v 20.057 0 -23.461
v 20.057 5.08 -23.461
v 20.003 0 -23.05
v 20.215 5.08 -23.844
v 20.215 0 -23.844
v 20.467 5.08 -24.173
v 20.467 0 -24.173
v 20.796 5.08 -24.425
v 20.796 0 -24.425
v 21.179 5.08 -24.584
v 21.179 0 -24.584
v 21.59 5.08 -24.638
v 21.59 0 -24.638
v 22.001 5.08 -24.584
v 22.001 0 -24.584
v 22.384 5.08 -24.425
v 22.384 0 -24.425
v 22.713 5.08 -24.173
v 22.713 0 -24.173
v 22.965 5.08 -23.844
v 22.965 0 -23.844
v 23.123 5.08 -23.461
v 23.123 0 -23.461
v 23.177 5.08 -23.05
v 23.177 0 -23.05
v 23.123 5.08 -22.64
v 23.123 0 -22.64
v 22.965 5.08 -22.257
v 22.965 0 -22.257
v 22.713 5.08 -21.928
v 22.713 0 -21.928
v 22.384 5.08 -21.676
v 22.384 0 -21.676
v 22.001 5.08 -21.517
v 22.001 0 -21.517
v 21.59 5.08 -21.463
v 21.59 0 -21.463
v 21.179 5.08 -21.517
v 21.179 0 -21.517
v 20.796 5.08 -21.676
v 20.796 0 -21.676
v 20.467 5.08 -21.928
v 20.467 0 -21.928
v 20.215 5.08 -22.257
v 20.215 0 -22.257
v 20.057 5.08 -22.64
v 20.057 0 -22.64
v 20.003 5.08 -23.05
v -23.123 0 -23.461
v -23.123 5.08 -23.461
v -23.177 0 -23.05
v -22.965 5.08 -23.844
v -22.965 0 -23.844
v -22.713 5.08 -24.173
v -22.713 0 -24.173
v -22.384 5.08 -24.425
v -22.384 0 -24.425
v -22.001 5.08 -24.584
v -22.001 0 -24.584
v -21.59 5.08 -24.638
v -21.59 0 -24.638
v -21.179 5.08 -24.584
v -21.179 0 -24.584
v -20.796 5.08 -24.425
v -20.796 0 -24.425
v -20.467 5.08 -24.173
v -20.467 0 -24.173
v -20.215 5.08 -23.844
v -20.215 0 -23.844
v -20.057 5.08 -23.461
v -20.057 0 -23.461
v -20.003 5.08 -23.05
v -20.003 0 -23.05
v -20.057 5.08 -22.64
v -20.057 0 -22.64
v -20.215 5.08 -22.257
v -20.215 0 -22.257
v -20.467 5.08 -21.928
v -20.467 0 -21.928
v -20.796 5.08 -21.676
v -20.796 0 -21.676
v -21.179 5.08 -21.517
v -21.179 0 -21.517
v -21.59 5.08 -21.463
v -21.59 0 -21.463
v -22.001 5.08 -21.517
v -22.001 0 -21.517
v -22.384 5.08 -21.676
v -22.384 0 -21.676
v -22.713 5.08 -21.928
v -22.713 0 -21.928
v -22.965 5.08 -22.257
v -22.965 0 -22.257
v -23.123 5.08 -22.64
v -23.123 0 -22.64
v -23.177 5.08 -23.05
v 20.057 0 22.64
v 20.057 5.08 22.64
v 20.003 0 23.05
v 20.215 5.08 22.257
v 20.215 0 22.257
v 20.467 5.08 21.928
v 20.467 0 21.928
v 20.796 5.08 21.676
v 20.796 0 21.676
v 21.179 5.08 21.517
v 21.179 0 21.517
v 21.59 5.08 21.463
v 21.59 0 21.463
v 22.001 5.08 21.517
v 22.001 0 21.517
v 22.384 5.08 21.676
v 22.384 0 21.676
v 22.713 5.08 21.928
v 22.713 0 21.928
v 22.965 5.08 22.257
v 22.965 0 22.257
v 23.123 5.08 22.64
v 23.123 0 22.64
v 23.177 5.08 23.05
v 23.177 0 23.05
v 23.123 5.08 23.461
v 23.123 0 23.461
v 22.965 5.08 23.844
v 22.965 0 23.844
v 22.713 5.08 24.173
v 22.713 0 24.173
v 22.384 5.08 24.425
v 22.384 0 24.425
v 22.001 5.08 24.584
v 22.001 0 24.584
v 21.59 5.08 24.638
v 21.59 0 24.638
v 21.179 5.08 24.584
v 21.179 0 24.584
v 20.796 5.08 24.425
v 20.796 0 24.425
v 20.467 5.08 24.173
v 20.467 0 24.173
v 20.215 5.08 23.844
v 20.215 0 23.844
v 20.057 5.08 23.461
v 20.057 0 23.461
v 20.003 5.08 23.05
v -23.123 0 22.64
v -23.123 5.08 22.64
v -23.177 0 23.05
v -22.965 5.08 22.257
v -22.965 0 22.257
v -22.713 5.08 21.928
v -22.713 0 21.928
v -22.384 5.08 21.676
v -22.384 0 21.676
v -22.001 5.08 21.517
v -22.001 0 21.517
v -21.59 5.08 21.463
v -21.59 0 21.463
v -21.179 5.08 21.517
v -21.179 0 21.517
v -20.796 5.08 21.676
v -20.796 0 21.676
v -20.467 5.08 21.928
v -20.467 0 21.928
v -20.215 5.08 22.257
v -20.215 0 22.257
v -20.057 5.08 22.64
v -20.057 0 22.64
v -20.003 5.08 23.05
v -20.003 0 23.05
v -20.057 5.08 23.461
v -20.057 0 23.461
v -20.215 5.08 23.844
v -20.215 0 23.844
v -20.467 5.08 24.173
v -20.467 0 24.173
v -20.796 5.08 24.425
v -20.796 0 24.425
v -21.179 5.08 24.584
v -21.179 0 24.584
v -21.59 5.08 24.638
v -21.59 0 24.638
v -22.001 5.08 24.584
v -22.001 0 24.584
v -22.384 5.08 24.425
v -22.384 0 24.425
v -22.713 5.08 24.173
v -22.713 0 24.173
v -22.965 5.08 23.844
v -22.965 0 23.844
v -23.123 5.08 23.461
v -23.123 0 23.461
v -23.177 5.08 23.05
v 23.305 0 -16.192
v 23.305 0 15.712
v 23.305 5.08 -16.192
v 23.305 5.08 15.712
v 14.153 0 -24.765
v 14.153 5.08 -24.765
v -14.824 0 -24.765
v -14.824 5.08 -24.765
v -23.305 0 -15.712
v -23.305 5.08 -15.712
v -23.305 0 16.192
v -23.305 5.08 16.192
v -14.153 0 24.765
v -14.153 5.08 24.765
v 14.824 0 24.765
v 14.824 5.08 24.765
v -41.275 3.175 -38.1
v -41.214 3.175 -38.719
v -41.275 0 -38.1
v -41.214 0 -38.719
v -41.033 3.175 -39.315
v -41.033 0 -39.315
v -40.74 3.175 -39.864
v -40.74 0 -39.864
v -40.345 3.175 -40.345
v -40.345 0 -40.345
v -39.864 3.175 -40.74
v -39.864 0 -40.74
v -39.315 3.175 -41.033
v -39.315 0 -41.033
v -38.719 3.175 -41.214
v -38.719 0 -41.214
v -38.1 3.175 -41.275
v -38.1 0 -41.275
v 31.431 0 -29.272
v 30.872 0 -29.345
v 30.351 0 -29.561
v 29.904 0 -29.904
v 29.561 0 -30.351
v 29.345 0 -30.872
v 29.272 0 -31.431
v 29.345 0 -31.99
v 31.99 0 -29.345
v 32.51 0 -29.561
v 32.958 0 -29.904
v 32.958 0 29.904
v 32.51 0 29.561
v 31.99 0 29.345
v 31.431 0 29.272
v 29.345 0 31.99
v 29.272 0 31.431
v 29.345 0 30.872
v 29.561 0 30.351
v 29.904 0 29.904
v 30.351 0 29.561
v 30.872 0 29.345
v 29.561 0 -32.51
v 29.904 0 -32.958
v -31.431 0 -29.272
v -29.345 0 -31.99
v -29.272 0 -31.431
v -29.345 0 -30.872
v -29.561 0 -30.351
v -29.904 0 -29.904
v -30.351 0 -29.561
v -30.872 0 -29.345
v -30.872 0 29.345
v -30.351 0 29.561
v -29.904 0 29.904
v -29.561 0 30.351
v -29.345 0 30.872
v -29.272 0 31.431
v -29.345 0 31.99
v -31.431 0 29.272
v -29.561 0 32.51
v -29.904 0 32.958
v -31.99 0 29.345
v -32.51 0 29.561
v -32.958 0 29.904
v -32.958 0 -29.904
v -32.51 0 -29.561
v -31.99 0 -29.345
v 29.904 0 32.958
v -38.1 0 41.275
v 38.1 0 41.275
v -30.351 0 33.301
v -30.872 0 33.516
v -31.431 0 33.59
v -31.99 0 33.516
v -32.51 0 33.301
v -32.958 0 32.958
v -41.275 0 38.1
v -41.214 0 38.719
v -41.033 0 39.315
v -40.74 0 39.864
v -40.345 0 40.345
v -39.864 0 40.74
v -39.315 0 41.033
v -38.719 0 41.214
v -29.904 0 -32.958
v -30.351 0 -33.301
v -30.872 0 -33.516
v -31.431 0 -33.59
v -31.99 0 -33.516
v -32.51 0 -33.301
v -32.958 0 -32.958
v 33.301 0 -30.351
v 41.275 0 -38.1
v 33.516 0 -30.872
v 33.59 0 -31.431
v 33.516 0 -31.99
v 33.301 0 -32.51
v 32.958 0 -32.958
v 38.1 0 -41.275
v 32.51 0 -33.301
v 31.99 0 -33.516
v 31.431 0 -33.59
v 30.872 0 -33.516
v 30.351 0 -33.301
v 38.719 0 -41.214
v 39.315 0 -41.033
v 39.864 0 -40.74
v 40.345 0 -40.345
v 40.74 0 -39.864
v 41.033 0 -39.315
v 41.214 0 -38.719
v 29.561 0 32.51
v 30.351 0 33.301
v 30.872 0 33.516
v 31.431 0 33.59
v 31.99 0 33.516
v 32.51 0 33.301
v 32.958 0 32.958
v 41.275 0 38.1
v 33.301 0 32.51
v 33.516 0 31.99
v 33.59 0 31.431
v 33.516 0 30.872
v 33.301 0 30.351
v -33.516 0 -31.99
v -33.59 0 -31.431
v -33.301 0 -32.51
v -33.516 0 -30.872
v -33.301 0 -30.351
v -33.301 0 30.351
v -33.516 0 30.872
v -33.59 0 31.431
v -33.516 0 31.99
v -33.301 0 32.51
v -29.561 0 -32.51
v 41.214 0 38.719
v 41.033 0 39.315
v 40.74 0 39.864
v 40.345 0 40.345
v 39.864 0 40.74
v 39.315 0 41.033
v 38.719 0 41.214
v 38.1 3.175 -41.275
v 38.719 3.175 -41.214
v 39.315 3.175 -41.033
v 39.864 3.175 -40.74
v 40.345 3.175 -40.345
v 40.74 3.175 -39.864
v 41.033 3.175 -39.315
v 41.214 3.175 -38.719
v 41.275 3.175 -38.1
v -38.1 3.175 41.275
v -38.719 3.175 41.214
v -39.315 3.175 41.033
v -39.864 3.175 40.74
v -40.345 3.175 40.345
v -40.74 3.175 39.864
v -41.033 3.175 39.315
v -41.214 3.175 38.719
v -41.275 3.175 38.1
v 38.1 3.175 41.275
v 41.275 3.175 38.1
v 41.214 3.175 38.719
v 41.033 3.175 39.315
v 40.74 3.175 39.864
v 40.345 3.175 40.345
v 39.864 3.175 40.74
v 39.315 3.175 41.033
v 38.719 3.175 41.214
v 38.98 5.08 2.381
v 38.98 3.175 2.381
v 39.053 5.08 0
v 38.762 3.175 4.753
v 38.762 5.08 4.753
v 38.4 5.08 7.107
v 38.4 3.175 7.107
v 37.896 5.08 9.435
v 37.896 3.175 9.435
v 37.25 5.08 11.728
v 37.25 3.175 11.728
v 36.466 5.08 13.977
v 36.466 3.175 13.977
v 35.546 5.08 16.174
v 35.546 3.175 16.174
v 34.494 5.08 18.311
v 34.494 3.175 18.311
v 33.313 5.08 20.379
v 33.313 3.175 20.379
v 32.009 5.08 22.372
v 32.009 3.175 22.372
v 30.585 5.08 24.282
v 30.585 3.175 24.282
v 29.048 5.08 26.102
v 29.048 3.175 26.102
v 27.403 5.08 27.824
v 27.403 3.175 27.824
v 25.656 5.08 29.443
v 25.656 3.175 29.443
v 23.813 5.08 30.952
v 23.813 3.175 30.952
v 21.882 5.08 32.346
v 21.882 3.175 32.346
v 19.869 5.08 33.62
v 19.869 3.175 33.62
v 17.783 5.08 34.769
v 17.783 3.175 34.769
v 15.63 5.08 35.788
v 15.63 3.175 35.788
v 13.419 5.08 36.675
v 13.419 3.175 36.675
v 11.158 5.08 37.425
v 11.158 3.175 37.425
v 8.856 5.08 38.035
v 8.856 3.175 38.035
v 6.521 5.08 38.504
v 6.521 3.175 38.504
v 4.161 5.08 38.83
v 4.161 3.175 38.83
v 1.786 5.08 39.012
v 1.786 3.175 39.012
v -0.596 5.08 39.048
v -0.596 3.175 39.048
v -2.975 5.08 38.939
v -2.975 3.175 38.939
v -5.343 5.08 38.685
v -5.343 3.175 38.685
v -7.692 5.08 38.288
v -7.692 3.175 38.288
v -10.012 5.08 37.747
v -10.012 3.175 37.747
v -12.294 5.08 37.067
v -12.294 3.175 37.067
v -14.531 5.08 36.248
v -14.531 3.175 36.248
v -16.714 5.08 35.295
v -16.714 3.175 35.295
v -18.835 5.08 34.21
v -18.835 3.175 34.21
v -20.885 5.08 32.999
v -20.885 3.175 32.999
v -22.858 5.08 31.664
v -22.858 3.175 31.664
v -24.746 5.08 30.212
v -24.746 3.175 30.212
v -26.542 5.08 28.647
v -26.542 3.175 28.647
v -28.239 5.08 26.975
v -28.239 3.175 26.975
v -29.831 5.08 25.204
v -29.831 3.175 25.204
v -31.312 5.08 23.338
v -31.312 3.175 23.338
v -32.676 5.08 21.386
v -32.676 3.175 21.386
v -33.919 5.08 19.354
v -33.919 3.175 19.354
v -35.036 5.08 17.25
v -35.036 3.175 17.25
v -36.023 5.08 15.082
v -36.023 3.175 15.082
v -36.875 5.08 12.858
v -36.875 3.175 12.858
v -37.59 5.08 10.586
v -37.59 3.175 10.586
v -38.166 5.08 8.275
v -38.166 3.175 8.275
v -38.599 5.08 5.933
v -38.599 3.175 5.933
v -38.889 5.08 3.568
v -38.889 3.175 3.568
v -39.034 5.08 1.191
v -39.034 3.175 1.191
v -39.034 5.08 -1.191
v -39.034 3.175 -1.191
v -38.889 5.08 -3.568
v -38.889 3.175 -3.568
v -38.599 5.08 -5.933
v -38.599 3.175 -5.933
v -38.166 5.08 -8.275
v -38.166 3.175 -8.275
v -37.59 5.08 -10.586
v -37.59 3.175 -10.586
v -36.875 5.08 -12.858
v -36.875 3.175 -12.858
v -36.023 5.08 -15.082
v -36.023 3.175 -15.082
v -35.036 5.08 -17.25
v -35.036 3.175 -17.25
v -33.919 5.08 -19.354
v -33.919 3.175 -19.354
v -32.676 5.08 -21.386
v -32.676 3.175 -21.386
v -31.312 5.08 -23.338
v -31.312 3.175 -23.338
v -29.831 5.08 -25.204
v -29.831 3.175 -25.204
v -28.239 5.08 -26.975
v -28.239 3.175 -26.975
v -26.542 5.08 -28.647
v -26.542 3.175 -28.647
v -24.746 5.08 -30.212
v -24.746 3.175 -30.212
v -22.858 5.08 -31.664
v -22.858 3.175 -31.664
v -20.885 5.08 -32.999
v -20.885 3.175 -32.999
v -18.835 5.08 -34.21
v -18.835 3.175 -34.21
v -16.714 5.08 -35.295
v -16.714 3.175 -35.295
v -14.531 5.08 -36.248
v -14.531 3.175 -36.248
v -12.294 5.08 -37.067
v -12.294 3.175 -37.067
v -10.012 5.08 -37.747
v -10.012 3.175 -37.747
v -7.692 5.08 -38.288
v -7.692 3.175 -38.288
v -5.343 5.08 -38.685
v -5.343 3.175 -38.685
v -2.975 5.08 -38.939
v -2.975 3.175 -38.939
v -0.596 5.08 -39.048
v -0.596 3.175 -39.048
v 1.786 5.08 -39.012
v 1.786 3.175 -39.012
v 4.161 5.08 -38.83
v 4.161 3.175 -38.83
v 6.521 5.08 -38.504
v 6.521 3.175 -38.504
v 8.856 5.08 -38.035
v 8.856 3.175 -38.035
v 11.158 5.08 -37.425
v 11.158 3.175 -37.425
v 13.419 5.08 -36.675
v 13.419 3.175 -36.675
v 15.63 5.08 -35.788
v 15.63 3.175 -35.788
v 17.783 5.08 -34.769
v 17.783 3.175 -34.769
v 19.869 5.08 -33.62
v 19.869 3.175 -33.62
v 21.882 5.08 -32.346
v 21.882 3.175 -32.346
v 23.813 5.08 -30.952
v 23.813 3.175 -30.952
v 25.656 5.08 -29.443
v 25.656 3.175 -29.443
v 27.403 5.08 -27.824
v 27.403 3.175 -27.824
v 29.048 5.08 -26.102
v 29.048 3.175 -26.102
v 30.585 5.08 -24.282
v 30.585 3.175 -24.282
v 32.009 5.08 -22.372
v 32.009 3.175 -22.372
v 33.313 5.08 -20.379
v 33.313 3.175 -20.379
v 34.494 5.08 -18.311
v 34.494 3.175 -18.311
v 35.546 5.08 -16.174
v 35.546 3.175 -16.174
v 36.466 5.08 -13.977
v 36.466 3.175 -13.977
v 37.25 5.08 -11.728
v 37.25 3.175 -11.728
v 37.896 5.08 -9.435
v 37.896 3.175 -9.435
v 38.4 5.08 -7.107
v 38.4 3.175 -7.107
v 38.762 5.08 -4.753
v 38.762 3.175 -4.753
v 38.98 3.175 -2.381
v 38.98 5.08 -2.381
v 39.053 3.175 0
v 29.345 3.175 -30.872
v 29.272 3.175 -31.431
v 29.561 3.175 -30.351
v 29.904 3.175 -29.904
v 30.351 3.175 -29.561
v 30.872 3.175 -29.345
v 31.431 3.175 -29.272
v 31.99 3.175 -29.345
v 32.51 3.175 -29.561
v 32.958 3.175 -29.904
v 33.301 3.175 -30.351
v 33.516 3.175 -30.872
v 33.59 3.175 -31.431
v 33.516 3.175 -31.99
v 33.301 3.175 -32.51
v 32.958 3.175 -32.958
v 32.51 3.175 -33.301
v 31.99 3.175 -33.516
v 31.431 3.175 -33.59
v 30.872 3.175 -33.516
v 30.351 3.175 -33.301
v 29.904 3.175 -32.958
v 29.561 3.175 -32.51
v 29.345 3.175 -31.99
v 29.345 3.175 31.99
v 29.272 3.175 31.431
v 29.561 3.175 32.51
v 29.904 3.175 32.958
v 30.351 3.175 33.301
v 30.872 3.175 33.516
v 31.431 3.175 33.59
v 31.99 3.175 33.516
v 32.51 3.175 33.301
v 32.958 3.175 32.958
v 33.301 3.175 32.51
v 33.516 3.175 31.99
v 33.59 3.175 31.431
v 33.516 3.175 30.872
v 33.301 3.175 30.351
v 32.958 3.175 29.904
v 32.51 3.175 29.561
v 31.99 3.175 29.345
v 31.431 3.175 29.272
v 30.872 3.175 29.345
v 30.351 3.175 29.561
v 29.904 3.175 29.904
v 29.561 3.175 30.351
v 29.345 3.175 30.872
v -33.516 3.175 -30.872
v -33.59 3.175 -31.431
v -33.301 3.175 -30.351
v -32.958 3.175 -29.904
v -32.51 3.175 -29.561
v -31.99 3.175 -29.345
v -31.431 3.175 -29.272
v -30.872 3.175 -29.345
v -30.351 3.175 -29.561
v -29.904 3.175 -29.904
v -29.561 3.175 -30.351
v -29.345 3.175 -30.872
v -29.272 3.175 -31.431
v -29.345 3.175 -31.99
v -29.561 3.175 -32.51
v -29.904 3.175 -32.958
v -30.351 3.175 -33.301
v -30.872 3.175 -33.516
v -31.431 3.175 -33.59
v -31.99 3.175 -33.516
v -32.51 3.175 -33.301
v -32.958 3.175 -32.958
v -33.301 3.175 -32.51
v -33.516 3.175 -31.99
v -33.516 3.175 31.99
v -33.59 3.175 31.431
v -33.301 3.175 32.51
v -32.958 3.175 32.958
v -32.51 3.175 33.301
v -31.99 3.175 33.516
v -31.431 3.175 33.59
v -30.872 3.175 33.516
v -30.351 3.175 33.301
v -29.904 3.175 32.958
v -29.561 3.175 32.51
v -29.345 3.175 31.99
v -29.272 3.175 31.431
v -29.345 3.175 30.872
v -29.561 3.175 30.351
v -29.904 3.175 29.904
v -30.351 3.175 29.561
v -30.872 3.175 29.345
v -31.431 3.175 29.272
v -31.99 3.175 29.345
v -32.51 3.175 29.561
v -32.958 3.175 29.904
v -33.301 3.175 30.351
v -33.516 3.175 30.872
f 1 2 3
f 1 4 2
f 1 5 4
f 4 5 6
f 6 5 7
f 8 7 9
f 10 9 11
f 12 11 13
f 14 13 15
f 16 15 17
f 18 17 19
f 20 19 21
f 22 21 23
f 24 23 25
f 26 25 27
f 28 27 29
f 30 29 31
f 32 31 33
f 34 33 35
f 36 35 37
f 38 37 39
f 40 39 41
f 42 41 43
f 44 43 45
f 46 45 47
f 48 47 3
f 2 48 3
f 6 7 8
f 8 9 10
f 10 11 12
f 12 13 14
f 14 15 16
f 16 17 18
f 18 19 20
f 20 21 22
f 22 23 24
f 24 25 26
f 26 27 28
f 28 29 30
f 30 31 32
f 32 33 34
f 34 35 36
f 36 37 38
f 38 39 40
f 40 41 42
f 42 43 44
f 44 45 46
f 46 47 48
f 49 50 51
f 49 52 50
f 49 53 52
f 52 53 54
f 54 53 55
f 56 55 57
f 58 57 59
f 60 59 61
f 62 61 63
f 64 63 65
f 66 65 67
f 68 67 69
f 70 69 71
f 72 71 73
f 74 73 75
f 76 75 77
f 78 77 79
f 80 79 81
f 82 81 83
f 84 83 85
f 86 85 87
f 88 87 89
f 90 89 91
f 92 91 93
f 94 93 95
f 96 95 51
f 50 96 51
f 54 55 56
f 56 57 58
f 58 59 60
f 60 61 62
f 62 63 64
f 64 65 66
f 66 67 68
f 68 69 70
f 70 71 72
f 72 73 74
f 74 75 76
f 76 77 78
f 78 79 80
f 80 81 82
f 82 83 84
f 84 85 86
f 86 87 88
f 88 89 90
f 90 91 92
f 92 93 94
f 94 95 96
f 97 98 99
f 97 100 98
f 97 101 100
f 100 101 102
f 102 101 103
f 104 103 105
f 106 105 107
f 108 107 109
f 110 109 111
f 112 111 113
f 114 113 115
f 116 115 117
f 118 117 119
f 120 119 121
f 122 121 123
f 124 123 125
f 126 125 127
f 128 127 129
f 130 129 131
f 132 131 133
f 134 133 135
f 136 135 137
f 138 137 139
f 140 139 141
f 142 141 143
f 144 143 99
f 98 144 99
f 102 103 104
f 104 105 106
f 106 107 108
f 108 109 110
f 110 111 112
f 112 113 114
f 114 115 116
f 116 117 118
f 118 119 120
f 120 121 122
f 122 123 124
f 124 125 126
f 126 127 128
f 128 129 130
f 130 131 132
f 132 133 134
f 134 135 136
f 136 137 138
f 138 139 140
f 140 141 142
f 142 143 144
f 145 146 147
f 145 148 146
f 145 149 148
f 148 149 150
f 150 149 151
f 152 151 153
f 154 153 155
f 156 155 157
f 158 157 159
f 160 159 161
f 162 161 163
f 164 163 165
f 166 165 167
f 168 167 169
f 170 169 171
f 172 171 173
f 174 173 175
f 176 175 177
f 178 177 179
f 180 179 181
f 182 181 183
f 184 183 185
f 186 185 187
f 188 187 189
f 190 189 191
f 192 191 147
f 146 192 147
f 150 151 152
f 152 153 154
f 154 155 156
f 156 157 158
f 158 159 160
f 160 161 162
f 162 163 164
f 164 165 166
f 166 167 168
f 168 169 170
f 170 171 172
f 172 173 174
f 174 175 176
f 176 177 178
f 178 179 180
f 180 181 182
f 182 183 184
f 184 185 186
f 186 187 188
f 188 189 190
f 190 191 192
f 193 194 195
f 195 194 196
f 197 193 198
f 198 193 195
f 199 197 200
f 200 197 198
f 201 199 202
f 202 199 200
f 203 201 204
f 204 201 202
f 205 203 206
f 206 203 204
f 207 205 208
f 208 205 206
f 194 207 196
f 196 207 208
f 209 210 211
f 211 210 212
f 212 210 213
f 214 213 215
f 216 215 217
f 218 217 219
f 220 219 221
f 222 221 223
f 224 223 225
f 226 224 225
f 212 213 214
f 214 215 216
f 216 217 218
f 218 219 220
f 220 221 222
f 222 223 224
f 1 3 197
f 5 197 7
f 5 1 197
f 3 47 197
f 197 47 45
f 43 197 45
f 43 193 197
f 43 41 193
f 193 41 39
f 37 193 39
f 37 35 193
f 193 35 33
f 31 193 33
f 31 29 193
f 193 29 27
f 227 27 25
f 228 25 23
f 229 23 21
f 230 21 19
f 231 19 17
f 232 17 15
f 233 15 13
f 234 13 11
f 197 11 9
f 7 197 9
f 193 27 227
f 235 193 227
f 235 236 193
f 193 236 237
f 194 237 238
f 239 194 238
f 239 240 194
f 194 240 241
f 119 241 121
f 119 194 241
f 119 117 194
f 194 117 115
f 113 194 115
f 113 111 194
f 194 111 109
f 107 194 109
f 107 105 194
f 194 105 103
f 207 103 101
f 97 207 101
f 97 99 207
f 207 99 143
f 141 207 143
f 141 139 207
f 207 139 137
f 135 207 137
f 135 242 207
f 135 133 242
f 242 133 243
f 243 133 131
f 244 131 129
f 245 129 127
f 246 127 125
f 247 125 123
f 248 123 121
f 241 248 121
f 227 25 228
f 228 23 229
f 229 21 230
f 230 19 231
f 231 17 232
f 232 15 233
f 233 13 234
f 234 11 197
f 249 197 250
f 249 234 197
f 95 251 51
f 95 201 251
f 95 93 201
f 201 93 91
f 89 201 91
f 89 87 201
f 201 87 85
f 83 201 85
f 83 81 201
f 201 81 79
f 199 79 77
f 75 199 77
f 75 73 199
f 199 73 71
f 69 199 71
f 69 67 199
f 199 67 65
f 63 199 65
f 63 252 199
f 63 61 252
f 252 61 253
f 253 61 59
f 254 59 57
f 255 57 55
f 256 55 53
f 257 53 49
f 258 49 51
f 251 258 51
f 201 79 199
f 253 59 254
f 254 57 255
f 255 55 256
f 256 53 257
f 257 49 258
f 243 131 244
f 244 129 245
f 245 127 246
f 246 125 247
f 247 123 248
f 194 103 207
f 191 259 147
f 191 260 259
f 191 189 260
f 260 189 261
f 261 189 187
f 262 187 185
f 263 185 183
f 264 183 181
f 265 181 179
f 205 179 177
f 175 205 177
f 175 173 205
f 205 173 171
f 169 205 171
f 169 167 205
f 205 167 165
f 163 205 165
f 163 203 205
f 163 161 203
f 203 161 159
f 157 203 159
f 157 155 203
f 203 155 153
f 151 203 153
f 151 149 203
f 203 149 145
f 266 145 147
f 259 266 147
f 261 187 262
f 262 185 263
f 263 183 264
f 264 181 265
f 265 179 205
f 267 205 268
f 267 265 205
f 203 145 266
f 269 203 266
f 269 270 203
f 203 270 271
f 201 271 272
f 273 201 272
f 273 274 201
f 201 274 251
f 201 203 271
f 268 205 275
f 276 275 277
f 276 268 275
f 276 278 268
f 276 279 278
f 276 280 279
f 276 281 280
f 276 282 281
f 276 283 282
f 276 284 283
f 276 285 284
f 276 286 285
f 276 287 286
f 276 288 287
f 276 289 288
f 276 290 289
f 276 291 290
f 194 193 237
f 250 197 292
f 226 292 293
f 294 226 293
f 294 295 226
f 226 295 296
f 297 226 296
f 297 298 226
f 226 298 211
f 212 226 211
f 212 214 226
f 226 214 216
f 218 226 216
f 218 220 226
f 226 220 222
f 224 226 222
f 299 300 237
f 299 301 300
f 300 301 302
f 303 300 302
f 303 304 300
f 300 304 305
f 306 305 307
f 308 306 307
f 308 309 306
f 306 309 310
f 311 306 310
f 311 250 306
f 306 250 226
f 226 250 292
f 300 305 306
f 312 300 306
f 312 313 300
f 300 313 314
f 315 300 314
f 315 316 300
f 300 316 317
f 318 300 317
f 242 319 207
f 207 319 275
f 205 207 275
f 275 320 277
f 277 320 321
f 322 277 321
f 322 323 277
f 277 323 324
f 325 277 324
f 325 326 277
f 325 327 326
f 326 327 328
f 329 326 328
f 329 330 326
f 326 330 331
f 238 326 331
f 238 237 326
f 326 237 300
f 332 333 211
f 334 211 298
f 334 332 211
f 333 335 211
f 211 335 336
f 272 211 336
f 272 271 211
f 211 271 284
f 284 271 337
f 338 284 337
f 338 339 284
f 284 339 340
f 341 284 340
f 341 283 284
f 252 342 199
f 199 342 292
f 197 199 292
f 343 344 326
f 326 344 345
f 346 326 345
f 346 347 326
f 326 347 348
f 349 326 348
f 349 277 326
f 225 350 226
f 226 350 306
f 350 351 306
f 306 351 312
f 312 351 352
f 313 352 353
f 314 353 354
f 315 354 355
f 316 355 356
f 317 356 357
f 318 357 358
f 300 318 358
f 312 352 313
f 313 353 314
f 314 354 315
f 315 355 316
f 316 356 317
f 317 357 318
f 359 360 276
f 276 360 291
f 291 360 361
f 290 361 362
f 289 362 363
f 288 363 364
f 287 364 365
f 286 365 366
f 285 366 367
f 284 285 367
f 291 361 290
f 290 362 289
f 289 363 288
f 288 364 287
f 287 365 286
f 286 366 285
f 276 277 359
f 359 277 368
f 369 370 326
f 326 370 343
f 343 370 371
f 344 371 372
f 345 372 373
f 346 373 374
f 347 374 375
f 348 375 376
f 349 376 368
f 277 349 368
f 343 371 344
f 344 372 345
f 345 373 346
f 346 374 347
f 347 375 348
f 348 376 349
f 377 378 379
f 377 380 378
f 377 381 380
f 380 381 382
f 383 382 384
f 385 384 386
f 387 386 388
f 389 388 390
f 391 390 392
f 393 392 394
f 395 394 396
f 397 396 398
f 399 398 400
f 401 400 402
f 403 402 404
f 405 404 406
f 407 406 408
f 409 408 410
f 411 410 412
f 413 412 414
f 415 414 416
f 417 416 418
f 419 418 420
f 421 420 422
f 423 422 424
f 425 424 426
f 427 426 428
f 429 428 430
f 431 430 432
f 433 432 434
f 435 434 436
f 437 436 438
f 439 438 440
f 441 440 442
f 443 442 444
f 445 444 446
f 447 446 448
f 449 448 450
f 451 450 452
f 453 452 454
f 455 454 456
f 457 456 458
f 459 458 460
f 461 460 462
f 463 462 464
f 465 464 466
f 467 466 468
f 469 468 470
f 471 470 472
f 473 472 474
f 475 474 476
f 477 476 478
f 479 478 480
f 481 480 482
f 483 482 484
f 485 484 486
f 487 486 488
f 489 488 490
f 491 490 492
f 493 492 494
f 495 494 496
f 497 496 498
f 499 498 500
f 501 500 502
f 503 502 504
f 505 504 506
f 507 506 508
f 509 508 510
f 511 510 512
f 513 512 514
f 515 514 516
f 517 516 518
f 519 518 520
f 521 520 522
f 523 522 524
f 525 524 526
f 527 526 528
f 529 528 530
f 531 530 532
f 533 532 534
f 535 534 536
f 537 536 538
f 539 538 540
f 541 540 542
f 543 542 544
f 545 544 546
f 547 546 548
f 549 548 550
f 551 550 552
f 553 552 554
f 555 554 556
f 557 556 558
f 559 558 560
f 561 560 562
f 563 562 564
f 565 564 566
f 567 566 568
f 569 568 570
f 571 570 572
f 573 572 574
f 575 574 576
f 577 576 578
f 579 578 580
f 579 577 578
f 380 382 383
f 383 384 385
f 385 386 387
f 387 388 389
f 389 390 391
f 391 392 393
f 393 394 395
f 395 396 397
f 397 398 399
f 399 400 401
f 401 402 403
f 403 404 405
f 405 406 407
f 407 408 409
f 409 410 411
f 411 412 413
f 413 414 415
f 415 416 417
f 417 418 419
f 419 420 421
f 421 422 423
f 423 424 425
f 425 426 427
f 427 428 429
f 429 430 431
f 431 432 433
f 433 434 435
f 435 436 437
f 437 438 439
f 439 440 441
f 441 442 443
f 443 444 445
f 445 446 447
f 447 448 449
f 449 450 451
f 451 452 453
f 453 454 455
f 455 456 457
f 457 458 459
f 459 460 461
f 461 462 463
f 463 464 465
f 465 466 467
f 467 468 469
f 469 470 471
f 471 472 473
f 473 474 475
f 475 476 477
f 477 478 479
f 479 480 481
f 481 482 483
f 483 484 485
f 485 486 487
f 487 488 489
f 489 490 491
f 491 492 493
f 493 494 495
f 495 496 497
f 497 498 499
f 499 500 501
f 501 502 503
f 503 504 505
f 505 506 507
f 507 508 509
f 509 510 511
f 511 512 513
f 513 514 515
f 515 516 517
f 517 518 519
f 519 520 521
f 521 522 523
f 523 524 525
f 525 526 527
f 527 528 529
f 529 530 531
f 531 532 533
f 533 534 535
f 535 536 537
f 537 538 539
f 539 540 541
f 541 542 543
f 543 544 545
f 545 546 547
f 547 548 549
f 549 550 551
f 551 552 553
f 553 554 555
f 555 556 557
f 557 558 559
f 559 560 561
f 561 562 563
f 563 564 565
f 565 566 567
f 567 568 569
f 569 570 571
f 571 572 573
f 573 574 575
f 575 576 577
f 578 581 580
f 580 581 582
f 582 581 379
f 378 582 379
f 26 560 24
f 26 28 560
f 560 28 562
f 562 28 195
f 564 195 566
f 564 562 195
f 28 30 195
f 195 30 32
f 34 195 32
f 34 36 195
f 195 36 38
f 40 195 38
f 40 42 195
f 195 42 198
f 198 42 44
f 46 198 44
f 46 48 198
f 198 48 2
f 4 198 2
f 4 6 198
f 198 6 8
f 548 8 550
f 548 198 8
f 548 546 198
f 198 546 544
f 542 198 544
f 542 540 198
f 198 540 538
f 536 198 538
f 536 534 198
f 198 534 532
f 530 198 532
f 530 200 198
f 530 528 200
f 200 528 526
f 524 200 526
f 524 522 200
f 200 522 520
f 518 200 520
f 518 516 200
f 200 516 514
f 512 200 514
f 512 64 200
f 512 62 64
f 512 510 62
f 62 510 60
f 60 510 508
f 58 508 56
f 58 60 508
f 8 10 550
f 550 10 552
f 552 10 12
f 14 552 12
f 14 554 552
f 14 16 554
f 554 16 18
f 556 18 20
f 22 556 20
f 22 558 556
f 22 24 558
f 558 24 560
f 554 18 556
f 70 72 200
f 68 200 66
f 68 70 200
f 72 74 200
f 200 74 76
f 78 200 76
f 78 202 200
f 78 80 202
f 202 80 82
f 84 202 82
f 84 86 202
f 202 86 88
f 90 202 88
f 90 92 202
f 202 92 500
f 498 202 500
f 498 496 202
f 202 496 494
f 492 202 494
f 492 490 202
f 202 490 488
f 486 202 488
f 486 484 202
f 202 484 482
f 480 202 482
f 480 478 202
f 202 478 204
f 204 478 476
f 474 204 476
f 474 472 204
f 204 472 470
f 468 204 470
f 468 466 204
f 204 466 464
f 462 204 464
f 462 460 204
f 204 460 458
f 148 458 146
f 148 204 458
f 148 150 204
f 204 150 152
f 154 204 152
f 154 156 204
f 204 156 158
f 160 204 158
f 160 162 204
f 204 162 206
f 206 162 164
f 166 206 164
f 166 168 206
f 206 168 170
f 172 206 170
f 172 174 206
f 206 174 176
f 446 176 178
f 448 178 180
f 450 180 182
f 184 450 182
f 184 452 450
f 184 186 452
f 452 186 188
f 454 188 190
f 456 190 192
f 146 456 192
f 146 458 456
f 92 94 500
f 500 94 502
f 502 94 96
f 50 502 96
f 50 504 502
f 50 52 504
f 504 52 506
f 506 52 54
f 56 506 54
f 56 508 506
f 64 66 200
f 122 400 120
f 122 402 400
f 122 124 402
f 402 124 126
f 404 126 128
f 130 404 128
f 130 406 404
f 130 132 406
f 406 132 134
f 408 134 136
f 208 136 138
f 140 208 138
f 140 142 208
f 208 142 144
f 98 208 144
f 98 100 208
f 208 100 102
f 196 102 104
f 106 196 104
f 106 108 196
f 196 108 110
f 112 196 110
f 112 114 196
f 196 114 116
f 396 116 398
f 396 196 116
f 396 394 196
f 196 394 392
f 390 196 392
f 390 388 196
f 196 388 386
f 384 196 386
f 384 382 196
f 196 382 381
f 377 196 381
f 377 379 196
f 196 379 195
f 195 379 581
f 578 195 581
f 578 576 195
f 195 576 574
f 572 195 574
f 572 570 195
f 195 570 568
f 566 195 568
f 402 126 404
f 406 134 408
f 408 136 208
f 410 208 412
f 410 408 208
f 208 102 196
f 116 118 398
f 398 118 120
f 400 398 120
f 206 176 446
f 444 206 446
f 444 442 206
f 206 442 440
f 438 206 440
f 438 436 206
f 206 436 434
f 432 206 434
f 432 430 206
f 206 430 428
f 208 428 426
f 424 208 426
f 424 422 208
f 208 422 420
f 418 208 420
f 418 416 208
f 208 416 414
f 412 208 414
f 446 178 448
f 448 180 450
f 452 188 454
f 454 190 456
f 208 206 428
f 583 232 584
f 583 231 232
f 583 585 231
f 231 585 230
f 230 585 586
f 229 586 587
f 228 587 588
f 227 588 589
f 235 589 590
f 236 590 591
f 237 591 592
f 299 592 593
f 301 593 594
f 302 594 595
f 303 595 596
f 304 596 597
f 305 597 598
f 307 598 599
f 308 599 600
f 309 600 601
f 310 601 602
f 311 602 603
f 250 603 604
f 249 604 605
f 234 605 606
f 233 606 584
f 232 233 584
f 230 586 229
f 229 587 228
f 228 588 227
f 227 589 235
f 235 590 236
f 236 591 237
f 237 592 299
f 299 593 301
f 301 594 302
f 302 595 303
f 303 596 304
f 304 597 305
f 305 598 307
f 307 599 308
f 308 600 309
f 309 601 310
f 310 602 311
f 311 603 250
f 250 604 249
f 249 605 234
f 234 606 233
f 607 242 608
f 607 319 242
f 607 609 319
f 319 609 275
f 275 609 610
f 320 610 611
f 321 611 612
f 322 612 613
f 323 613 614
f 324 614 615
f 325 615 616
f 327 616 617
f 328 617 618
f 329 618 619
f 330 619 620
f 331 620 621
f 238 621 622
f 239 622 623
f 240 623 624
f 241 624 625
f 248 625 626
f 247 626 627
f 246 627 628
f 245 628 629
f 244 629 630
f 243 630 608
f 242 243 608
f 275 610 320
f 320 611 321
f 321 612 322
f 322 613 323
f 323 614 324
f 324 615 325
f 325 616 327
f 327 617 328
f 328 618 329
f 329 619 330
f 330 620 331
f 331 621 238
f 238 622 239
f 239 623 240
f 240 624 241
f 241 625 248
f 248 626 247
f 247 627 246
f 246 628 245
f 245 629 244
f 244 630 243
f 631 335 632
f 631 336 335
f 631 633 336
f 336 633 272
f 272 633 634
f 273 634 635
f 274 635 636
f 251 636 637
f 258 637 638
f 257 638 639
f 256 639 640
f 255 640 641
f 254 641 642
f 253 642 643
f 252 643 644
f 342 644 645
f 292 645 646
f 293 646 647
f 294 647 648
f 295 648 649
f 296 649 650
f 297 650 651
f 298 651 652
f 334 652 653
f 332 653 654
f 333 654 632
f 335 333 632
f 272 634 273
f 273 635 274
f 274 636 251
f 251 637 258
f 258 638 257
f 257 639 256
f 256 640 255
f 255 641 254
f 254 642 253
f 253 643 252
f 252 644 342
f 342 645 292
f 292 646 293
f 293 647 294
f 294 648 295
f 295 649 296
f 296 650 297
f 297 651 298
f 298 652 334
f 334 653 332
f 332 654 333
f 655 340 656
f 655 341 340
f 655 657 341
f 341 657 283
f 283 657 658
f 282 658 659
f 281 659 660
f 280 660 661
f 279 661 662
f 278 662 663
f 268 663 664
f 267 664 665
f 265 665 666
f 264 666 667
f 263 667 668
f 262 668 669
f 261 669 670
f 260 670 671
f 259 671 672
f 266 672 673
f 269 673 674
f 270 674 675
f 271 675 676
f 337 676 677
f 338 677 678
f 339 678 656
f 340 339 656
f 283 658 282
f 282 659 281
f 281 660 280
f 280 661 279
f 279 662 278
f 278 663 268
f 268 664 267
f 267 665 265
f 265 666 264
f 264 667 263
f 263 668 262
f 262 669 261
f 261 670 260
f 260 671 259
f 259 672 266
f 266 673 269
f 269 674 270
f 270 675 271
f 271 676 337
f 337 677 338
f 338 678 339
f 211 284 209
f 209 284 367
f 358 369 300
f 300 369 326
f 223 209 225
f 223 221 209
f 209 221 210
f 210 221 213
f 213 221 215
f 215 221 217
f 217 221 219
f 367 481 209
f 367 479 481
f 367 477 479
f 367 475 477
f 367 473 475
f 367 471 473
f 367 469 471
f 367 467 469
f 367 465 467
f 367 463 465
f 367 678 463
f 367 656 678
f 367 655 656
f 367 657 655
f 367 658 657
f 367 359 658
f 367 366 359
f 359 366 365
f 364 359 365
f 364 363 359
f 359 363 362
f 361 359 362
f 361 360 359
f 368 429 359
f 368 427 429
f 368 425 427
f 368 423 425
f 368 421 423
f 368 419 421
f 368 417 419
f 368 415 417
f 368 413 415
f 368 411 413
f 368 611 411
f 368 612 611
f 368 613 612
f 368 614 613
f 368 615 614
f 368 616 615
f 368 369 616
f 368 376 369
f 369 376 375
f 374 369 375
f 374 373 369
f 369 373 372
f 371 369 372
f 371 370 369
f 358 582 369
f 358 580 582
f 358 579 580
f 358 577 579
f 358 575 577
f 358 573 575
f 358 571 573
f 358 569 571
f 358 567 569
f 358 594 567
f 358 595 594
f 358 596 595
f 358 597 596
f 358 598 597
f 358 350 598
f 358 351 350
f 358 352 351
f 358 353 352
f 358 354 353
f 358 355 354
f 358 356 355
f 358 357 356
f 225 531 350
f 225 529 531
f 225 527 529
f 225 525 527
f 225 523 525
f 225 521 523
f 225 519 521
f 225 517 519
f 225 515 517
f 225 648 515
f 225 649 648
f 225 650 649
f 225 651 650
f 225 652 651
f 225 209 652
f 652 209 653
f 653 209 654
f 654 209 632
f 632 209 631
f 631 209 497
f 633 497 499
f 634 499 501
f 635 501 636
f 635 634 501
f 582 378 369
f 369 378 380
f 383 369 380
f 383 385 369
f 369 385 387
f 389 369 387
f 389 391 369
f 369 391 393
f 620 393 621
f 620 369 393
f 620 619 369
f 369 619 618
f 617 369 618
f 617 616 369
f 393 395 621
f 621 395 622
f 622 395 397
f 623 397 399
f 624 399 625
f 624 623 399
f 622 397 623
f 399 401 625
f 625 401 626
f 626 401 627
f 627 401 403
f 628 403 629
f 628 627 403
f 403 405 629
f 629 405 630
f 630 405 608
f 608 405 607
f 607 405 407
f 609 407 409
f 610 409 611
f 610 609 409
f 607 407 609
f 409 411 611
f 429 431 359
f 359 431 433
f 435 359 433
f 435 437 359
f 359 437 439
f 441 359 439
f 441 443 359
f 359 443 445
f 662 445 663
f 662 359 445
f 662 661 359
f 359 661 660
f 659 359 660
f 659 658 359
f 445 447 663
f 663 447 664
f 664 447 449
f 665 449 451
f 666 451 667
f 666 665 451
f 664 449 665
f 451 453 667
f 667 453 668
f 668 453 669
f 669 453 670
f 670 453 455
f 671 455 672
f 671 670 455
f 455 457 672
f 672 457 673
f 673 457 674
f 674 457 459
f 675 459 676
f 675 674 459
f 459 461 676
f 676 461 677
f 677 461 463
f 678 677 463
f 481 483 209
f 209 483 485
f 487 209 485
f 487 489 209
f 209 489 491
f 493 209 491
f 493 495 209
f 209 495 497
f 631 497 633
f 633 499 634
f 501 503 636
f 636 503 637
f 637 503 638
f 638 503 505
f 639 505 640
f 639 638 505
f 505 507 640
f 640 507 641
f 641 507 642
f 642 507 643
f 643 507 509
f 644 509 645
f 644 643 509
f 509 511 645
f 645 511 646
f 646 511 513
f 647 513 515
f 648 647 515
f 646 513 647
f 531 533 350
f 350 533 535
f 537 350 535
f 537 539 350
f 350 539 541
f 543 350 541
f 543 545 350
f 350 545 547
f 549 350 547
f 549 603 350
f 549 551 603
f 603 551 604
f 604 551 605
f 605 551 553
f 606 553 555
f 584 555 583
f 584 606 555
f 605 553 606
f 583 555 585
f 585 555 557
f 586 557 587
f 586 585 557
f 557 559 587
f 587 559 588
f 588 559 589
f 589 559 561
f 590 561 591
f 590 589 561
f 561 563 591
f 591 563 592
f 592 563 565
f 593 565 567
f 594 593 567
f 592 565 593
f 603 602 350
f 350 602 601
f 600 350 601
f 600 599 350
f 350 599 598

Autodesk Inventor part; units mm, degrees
ref_plane "YZ Plane" through (0, 0, 0) normal (1, 0, 0) x (0, 1, 0)
ref_plane "XZ Plane" through (0, 0, 0) normal (0, 1, 0) x (-1, 0, 0)
ref_plane "XY Plane" through (0, 0, 0) normal (0, 0, 1) x (1, 0, 0)
sketch "Sketch1" plane through (0, 0, 0) normal (0, 1, 0) x (-1, 0, 0)
  line L0 (41.275, 41.275) -> (-41.275, 41.275)
  line L1 (-41.275, 41.275) -> (-41.275, -41.275)
  line L2 (-41.275, -41.275) -> (41.275, -41.275)
  line L3 (41.275, -41.275) -> (41.275, 41.275)
  circle A0 centre (0, 0) radius 44.45 construction
  circle A1 centre (0, 0) radius 39.6875
  line L4 (-41.275, 41.275) -> (41.275, -41.275) construction
  line L5 (41.275, 41.275) -> (-41.275, -41.275) construction
  circle A2 centre (31.4309, 31.4309) radius 2.159
  circle A3 centre (31.4309, -31.4309) radius 2.159
  circle A4 centre (-31.4309, 31.4309) radius 2.159
  circle A5 centre (-31.4309, -31.4309) radius 2.159
  point P0 (0, 0)
  point P1 (0, 0)
  point P2 (0, 0)
  dimension "d0" = 82.55
  dimension "d1" = 82.55
  dimension "d2" = 88.9
  dimension "d3" = 79.375
  dimension "d4" = 4.318
  dimension "d5" = 4.318
  dimension "d6" = 4.318
  dimension "d7" = 4.318
extrude "Extrusion1" add sketch "Sketch1" along normal blind 3.175 contours L3 L2 L1 L0 | A1
sketch "Sketch2" plane through (0, 3.175, 0) normal (0, 1, 0) x (1, 0, 0)
  circle A0 centre (0, 0) radius 39.0525
  circle A1 centre (0, 0) radius 39.6875 construction
  point P0 (0, 0)
  dimension "d10" = 78.105
  dimension "d17" = 79.375
extrude "Extrusion2" add sketch "Sketch2" along normal blind 1.905
fillet "Fillet1" radius 3.175 1 edges at (41.275, 1.5875, 41.275)
fillet "Fillet2" radius 3.175 1 edges at (-41.275, 1.5875, 41.275)
fillet "Fillet3" radius 3.175 1 edges at (41.275, 1.5875, -41.275)
fillet "Fillet4" radius 3.175 1 edges at (-41.275, 1.5875, -41.275)
sketch "Sketch3" plane through (0, 5.08, 0) normal (0, 1, 0) x (1, 0, 0)
  line L0 (0, 24.765) -> (0, -24.765) construction
  line L1 (-23.3045, 0) -> (23.3045, 0) construction
  line L2 (-21.59, -23.0505) -> (21.59, -23.0505) construction
  line L3 (21.59, -23.0505) -> (21.59, 23.0505) construction
  line L4 (21.59, 23.0505) -> (-21.59, 23.0505) construction
  line L5 (-21.59, 23.0505) -> (-21.59, -23.0505) construction
  line L6 (-21.59, -23.0505) -> (21.59, 23.0505) construction
  line L7 (21.59, -23.0505) -> (-21.59, 23.0505) construction
  line L8 (-27.7495, -27.7495) -> (27.7495, 27.7495) construction
  line L9 (27.7495, -27.7495) -> (-27.7495, 27.7495) construction
  line L10 (-14.8242, 24.765) -> (14.1532, 24.765)
  line L11 (-14.8242, 24.765) -> (-23.3045, 15.7122)
  line L12 (23.3045, 16.1923) -> (23.3045, -15.7122)
  line L13 (23.3045, 16.1923) -> (14.1532, 24.765)
  line L14 (14.8242, -24.765) -> (-14.1532, -24.765)
  line L15 (14.8242, -24.765) -> (23.3045, -15.7122)
  line L16 (-23.3045, -16.1923) -> (-23.3045, 15.7122)
  line L17 (-23.3045, -16.1923) -> (-14.1532, -24.765)
  point P0 (0, 0)
  point P1 (0, 0)
  dimension "d20" = 43.18
  dimension "d21" = 46.101
extrude "Extrusion3" cut sketch "Sketch3" against normal through all
hole "Hole1" at (-21.59, 5.08, -23.0505) at (21.59, 5.08, 23.0505) at (21.59, 5.08, -23.0505) at (-21.59, 5.08, 23.0505) direction (0, -1, 0) diameter 3.175 end through all
properties part number "ka51a-instrument-mount"
